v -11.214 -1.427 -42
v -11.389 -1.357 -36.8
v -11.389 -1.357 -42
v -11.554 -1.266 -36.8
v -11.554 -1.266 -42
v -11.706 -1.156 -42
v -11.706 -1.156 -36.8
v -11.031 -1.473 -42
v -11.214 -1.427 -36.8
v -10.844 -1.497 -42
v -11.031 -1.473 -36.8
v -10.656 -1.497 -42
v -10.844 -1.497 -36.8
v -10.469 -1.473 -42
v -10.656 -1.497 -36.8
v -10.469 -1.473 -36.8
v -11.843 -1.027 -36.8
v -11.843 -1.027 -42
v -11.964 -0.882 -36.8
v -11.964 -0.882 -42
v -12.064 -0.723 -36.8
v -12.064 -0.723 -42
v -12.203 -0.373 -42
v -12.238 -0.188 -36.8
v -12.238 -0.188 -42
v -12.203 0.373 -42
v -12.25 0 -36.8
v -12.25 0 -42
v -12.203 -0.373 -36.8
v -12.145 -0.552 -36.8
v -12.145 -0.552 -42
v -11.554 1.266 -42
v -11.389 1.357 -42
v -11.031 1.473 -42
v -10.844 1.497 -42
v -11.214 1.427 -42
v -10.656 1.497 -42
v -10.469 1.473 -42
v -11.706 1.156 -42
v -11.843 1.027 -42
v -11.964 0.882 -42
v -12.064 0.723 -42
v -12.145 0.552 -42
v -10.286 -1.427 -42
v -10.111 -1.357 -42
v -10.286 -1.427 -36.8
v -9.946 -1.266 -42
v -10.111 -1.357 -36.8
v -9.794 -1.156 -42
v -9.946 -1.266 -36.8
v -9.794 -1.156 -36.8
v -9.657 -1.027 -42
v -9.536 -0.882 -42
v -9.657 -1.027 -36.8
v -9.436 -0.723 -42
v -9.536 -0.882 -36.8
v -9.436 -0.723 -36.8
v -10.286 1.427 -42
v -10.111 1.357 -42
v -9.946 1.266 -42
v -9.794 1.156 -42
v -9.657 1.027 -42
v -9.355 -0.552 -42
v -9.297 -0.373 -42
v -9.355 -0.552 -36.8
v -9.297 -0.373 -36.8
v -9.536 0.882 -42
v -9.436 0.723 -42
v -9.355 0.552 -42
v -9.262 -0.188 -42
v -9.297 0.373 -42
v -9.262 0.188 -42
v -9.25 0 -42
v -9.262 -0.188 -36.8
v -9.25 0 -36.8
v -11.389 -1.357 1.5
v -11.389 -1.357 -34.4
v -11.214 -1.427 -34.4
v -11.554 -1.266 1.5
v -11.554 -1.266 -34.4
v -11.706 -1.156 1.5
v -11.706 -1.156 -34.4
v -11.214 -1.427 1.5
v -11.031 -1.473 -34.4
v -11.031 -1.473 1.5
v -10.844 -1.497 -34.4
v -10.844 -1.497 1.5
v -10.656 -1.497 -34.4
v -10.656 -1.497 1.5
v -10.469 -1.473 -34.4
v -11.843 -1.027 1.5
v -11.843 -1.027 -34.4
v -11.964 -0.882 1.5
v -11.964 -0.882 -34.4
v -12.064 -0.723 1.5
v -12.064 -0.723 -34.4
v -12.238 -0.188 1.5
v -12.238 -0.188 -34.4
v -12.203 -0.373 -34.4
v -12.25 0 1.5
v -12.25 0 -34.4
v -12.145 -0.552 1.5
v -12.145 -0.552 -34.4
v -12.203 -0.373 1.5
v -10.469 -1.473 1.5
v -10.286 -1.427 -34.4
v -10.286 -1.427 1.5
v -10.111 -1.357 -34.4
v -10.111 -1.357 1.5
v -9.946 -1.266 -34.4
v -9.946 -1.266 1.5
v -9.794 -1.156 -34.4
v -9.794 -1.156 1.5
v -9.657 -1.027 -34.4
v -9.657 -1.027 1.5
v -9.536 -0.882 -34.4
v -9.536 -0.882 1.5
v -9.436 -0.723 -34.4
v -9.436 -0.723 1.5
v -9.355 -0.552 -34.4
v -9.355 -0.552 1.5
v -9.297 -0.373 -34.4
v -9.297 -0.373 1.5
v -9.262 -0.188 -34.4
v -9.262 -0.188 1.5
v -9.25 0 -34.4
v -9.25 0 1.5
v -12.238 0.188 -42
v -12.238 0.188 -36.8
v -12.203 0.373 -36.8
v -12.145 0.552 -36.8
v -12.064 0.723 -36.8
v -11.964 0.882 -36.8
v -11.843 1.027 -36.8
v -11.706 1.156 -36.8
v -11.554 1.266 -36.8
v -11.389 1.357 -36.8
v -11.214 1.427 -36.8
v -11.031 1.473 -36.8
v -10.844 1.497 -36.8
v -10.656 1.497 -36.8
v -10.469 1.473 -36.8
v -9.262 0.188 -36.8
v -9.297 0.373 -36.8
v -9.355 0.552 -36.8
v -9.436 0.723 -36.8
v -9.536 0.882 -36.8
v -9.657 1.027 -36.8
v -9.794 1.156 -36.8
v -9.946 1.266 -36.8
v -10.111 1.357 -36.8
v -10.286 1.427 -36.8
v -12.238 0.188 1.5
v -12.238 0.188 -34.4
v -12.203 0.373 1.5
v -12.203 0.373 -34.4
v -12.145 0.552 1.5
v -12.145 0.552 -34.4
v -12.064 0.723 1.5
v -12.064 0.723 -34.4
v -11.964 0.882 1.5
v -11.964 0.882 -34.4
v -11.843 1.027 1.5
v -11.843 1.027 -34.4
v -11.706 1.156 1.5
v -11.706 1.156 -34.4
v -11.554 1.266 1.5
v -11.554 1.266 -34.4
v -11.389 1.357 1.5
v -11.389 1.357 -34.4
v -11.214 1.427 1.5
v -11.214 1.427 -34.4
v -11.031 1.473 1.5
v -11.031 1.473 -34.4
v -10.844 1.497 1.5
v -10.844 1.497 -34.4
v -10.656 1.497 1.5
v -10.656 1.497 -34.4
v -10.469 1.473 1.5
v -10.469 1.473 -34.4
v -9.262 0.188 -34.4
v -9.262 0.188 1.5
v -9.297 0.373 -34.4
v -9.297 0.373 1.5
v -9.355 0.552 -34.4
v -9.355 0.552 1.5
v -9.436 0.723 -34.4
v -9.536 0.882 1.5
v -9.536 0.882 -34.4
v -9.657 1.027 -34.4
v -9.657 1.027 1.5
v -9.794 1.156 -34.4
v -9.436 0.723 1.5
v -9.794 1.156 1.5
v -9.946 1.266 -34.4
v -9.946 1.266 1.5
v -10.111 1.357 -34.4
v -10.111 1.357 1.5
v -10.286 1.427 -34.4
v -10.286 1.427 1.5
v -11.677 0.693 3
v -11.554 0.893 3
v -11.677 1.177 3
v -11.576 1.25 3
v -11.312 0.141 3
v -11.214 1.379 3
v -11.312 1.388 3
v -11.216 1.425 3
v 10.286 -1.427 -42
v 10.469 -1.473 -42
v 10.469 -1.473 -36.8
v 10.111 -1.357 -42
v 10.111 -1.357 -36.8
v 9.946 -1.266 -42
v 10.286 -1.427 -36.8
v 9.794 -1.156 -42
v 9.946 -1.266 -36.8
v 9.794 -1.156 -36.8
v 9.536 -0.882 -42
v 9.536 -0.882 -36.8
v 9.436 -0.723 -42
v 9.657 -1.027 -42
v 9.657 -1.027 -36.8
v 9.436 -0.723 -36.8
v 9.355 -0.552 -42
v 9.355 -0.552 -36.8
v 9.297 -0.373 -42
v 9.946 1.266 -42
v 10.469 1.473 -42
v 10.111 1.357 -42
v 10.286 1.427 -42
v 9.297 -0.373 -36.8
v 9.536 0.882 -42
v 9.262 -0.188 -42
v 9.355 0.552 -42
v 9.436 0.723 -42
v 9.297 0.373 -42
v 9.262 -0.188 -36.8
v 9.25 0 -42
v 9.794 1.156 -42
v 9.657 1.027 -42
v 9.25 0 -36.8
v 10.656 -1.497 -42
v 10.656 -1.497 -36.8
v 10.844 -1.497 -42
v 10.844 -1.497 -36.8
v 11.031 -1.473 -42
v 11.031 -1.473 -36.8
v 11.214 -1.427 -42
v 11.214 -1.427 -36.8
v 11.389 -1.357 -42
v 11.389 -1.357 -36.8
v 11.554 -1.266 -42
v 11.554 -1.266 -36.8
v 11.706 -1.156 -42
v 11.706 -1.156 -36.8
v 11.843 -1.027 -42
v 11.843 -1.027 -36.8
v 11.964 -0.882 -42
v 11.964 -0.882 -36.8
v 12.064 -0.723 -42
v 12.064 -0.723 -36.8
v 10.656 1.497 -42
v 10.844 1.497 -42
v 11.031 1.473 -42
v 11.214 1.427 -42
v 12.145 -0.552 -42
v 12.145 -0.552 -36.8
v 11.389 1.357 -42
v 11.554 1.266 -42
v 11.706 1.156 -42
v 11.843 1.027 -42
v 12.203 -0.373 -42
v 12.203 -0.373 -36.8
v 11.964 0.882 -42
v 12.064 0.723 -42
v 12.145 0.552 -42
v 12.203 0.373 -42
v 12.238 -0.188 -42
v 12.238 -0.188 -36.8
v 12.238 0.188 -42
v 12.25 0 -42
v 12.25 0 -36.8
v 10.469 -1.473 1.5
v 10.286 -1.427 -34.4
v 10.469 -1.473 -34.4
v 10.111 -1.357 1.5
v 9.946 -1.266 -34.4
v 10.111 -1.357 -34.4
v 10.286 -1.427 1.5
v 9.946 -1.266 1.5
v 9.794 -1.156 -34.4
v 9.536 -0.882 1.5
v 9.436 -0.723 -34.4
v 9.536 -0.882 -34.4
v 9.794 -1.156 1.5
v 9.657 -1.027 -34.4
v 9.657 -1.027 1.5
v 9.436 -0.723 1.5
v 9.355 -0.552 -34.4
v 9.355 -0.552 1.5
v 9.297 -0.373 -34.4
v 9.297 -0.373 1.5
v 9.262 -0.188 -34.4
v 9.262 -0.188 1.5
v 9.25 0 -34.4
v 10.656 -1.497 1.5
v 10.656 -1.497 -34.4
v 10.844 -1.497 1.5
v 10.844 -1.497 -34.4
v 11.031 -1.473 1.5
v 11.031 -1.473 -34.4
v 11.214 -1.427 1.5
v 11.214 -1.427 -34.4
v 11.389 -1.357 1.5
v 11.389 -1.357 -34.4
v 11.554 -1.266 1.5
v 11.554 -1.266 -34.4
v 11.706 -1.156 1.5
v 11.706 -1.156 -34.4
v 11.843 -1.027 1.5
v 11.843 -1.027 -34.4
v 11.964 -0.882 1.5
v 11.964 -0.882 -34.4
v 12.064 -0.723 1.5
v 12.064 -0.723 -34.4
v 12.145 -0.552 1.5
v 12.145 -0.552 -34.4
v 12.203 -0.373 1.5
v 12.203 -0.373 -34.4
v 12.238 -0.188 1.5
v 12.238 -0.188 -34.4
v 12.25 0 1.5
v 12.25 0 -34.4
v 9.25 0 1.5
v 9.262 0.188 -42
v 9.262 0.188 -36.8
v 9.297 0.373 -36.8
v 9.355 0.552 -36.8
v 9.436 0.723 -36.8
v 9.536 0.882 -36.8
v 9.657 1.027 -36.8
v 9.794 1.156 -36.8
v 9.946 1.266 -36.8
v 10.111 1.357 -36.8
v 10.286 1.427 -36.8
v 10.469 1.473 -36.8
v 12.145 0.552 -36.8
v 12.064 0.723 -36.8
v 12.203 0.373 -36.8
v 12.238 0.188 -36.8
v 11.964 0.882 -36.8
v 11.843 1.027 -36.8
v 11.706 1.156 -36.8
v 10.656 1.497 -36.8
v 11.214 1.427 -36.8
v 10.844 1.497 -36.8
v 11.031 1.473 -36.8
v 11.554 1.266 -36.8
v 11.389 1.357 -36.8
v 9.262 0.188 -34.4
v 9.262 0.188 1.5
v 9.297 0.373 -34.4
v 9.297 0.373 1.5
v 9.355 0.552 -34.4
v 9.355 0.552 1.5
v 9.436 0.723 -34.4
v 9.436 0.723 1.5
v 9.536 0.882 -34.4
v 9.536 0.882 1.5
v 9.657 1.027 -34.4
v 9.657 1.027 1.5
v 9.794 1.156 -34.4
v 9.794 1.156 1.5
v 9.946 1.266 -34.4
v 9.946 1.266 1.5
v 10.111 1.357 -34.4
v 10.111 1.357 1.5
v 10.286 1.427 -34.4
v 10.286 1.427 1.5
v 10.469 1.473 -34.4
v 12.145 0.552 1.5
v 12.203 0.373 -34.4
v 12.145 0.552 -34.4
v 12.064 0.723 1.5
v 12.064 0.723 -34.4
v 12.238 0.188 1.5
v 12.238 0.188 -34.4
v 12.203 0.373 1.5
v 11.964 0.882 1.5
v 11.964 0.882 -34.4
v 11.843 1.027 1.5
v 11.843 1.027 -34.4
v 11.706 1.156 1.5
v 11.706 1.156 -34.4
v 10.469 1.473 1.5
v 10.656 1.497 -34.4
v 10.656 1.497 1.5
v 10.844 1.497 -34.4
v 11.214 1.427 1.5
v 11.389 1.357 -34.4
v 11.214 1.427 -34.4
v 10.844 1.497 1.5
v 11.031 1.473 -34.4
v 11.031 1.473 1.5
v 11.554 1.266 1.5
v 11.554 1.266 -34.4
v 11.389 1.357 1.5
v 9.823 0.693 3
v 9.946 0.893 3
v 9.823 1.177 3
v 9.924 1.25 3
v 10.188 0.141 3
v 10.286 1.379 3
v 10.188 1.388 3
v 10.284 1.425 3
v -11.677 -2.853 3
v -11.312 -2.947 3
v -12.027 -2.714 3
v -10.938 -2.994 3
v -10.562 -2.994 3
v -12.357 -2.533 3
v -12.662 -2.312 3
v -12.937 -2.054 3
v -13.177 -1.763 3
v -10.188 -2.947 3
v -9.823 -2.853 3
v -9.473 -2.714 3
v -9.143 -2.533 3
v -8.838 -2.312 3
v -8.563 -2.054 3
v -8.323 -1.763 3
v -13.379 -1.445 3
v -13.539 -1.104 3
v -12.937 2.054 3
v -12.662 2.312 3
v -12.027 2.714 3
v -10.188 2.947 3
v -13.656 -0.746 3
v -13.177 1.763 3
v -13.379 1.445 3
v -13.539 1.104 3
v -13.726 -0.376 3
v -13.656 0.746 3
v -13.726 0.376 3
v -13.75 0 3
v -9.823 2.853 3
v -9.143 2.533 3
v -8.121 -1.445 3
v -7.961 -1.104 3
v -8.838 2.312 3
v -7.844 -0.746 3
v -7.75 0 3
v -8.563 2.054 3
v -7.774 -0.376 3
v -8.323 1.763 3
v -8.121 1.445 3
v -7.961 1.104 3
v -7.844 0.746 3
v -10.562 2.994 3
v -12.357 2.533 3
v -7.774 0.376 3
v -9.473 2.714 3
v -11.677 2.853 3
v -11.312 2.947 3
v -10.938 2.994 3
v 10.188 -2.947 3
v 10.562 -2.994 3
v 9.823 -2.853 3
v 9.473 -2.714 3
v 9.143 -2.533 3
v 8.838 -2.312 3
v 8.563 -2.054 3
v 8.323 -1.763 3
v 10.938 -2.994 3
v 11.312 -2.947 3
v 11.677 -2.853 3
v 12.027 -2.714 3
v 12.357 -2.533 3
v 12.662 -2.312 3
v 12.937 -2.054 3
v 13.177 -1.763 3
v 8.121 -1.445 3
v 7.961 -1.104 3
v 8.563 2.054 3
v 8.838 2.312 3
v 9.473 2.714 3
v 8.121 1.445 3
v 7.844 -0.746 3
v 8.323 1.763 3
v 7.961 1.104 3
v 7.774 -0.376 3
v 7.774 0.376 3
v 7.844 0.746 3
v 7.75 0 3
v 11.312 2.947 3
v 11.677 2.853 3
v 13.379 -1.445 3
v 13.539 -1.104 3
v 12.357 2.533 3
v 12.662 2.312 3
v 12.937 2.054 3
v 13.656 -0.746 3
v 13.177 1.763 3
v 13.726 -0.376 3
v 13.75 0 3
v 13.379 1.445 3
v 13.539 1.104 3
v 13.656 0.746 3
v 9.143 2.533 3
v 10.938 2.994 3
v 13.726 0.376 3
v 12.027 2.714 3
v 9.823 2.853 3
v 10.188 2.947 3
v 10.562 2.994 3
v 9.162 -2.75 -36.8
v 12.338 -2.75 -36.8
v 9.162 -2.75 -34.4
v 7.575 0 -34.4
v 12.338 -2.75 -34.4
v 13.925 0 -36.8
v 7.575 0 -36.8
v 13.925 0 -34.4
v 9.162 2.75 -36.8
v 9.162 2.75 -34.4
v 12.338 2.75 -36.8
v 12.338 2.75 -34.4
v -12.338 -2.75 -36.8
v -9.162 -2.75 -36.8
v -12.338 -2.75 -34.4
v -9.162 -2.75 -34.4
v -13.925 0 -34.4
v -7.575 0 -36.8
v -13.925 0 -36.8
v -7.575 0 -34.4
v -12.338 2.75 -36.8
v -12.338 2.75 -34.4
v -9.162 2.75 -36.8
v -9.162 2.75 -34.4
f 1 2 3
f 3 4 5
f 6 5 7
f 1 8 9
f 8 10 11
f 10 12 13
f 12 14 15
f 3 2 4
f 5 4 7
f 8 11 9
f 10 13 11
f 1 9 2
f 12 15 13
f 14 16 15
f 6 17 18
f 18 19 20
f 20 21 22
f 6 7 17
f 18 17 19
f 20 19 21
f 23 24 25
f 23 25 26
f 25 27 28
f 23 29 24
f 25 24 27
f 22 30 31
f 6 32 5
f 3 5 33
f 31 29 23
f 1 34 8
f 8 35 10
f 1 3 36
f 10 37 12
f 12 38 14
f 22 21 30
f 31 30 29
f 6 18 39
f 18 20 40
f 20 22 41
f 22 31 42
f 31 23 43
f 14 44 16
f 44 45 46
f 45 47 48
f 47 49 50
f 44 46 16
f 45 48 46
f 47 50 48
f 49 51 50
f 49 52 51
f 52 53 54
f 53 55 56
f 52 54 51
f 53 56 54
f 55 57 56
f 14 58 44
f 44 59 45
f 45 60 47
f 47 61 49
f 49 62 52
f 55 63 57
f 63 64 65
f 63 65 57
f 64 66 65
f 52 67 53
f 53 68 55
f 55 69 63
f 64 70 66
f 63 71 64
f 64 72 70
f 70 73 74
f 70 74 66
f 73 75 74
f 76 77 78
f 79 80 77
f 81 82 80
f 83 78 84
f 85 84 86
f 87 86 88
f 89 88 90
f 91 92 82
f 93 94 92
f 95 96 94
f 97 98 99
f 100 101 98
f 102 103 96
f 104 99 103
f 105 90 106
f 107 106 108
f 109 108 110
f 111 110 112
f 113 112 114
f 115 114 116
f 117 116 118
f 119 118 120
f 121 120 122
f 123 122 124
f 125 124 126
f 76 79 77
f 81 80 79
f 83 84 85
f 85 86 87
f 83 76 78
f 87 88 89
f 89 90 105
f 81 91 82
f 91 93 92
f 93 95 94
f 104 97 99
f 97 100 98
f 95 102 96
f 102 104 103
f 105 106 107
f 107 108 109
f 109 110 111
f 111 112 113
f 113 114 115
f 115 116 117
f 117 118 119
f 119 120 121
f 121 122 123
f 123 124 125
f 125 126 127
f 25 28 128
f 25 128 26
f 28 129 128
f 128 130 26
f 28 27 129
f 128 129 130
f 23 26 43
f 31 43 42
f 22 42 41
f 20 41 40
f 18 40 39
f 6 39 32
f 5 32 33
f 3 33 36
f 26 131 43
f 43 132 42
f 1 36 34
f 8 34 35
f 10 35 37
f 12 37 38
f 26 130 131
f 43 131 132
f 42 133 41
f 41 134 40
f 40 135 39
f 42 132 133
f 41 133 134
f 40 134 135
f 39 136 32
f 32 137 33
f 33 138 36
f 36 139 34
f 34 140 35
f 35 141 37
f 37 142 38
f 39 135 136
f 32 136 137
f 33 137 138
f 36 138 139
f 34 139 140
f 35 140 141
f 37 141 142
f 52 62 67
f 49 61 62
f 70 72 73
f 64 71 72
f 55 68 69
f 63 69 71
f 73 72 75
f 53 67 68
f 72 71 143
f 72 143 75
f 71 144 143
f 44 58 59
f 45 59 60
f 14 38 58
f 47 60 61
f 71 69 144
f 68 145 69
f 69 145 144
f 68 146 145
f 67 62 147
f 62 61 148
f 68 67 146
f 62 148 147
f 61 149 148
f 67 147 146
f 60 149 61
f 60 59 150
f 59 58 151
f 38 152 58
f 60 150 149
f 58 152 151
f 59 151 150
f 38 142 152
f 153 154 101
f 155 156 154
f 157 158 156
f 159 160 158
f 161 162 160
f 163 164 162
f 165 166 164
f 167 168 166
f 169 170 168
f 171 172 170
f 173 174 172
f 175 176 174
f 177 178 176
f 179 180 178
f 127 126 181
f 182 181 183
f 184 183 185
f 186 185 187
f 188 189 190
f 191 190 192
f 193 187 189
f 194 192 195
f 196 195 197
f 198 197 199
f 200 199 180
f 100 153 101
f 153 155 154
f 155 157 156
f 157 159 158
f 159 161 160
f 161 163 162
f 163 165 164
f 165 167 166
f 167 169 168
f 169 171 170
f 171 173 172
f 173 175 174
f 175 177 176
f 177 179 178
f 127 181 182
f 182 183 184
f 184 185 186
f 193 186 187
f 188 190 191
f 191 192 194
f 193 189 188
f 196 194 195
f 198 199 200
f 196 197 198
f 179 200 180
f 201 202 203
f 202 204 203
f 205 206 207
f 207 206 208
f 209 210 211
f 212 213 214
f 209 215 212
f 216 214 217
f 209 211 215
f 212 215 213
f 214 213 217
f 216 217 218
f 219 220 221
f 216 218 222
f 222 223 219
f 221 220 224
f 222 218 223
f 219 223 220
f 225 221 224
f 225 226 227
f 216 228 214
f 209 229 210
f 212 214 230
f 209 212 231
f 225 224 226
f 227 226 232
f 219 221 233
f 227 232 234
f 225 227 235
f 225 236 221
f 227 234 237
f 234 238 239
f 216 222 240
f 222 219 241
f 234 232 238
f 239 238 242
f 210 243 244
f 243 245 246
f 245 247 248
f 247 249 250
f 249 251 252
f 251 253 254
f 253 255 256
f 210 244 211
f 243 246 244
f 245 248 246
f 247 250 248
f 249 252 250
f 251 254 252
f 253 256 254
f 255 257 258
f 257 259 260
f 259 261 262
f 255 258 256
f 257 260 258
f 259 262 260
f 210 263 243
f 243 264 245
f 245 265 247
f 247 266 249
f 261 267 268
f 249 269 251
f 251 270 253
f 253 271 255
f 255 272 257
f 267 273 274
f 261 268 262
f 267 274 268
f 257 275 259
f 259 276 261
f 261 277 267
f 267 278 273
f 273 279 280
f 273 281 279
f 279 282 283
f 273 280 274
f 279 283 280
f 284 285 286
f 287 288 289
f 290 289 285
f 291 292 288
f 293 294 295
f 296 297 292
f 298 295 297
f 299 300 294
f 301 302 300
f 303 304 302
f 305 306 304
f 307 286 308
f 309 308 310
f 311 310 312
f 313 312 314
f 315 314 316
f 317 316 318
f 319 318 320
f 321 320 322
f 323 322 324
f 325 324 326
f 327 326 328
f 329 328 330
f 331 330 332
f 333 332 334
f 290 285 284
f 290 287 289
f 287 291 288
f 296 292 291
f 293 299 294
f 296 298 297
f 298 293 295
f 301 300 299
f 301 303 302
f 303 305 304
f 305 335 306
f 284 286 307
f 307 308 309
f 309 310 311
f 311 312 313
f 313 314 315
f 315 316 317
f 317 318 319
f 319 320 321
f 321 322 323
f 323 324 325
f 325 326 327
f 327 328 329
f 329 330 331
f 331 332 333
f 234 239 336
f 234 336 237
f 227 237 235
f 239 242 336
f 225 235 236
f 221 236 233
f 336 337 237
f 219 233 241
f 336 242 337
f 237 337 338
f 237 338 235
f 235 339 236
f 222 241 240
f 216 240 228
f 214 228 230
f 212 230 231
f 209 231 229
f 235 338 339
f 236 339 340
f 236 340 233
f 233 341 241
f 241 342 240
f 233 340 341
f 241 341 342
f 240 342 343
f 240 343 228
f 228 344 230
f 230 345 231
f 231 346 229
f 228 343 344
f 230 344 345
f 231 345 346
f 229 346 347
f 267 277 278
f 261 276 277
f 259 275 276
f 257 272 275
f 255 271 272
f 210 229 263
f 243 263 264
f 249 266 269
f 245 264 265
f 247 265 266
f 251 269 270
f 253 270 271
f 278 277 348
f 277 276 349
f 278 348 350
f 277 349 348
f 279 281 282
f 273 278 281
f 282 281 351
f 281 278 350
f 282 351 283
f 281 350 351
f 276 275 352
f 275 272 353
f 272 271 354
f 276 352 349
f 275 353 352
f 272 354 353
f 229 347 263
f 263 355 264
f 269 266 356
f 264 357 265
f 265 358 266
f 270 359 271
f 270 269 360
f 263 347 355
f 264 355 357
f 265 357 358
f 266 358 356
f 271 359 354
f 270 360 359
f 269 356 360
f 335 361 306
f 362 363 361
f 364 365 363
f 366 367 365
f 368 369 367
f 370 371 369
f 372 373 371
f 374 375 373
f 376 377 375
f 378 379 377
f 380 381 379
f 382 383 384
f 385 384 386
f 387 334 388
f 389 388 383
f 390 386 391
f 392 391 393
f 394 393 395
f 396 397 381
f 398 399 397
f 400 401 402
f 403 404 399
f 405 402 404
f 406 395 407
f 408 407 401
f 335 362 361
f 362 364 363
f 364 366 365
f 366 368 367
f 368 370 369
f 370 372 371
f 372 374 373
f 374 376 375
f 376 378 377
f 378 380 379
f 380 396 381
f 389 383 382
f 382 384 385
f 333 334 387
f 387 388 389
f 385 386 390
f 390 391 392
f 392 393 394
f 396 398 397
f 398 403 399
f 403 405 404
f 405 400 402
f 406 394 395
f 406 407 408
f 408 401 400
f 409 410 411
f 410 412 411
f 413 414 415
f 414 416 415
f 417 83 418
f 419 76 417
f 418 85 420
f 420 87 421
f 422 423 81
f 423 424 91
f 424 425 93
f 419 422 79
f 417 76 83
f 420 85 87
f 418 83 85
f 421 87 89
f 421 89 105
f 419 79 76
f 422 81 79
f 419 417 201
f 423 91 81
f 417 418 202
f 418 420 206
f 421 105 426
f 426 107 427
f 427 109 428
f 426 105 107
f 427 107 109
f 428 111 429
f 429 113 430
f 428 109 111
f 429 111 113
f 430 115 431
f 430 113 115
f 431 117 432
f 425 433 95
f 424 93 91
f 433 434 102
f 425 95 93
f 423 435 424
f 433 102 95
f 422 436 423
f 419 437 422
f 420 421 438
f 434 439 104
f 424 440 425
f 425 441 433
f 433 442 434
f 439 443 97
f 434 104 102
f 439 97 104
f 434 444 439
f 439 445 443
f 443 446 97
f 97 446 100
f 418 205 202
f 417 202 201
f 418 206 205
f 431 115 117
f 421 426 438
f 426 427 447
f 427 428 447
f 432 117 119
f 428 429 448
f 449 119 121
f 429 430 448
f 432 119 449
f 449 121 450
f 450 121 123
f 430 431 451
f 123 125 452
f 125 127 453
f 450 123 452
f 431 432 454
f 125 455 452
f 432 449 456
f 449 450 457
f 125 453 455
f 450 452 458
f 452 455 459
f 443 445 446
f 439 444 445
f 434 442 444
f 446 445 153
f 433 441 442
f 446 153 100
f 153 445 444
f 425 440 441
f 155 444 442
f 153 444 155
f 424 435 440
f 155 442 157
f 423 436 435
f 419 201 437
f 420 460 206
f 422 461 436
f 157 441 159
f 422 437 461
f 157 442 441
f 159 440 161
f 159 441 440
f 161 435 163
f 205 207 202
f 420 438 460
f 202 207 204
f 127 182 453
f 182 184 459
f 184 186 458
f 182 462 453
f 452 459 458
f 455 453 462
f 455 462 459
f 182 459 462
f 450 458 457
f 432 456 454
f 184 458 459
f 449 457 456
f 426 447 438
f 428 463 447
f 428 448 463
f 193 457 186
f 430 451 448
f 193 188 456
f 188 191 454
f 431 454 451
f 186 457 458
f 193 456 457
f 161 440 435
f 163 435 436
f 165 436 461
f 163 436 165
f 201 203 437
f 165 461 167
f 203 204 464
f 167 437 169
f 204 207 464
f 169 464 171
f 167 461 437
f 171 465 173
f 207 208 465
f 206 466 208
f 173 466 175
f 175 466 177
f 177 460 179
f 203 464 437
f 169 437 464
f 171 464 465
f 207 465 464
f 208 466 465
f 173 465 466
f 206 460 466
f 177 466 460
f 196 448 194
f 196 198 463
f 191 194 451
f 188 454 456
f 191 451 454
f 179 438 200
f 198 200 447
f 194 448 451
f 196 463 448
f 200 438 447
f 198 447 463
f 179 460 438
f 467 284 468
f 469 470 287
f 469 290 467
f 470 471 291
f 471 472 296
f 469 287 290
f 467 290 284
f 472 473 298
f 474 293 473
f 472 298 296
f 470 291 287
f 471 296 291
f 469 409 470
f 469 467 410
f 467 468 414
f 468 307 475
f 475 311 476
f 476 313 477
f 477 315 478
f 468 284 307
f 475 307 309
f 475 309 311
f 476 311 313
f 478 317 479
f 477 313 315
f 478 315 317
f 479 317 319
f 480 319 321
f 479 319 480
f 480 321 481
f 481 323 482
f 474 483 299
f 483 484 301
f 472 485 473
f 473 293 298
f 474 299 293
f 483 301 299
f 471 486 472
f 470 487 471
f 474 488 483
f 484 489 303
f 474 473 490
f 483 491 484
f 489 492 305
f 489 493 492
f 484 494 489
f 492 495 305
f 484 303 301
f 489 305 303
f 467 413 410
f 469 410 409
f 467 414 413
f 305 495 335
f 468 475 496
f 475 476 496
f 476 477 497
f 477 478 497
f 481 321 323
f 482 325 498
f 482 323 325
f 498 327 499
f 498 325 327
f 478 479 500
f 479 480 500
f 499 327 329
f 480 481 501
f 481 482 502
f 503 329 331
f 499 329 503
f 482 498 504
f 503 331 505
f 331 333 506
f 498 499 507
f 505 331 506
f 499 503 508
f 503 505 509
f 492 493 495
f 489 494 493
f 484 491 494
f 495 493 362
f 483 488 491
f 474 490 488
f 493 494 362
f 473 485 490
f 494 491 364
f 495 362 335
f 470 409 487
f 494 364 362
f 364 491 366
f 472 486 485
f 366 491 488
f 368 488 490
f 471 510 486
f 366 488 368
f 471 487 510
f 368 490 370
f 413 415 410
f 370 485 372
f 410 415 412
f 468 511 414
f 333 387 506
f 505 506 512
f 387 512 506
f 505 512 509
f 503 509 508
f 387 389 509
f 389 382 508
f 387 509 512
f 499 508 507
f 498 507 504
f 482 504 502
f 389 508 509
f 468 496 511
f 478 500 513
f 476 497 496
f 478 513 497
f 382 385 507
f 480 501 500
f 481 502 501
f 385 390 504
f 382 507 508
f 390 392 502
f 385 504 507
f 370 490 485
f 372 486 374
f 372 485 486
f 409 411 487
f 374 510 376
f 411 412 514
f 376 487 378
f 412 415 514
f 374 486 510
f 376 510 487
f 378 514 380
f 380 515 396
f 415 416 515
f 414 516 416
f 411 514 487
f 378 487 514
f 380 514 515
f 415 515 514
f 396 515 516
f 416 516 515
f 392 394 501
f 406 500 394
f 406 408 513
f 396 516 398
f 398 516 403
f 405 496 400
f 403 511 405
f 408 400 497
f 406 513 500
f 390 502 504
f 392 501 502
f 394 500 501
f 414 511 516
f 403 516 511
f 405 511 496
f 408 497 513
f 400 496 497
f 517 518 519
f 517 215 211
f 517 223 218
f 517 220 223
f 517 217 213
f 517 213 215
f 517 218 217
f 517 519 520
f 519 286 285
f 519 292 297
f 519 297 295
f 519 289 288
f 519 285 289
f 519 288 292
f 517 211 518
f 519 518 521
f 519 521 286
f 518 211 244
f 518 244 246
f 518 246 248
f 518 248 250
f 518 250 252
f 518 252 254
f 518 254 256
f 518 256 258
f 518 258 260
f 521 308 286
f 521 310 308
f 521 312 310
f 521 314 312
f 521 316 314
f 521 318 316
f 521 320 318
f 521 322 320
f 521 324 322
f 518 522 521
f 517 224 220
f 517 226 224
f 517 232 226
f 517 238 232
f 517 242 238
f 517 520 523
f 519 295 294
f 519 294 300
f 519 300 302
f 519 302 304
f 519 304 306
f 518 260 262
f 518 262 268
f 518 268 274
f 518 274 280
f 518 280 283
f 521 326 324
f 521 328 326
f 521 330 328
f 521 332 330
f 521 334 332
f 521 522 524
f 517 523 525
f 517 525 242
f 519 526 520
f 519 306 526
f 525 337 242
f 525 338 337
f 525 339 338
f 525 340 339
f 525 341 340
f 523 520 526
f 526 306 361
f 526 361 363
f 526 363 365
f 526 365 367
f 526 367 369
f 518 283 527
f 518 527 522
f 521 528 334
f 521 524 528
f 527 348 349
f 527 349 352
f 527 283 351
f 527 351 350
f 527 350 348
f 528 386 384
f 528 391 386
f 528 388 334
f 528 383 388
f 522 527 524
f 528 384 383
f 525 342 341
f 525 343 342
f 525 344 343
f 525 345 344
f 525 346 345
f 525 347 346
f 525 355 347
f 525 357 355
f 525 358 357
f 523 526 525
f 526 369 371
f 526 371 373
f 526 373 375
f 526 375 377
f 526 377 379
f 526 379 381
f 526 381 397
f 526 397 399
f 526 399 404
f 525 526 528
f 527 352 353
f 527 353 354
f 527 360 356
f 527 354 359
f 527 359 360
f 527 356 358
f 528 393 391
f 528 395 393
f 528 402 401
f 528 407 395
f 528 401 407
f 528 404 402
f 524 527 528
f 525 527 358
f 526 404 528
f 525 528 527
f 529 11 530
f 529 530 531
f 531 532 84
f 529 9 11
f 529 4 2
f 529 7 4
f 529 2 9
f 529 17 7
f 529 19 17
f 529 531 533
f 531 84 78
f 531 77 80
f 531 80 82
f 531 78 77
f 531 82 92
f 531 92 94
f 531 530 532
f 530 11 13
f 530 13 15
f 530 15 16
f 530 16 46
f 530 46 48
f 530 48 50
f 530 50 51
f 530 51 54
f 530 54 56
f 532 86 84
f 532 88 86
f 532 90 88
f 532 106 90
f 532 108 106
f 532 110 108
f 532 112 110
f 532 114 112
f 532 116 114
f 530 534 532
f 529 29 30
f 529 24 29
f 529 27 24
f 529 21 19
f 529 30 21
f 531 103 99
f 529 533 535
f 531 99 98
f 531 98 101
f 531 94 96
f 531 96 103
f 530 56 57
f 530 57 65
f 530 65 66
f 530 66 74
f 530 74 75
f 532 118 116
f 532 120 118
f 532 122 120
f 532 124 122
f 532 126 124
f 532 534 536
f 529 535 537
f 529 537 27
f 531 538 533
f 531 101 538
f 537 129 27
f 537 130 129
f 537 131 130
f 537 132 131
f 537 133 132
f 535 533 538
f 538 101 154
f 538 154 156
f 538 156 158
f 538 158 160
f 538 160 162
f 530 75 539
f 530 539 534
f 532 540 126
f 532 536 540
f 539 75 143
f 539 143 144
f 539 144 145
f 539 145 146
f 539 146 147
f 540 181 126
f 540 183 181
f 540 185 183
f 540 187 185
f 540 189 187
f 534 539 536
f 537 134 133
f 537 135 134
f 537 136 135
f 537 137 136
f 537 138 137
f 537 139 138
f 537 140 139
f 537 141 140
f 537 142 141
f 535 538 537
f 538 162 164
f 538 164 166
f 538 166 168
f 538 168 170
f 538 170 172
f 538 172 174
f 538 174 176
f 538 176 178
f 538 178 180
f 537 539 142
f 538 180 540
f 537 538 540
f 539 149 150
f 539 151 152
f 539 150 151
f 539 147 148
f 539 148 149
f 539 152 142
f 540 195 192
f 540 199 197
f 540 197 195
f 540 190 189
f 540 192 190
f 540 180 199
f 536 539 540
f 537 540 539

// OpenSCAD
$fn = 50;

difference() {
	union() {
		translate(v = [-10.75, 0, 3]) {
			rotate(a = [0, 0, 0]) {
				difference() {
					union() {
						translate(v = [0, 0, -45.0]) {
							cylinder(h = 45, r = 1.5);
						}
						translate(v = [0, 0, -1.5]) {
							cylinder(h = 1.5, r1 = 1.5, r2 = 3);
						}
					}
					union();
				}
			}
		}
		translate(v = [-10.75, 0, -36.8]) {
			rotate(a = [0, 0, 0]) {
				difference() {
					union() {
						linear_extrude(height = 2.4) {
							polygon(points = [[3.1754264805429417, 0.0], [1.5877132402714713, 2.75], [-1.5877132402714702, 2.7500000000000004], [-3.1754264805429417, 3.888775875324659e-16], [-1.5877132402714722, -2.7499999999999996], [1.5877132402714687, -2.7500000000000013]]);
						}
					}
					union();
				}
			}
		}
		translate(v = [10.75, 0, 3]) {
			rotate(a = [0, 0, 0]) {
				difference() {
					union() {
						translate(v = [0, 0, -45.0]) {
							cylinder(h = 45, r = 1.5);
						}
						translate(v = [0, 0, -1.5]) {
							cylinder(h = 1.5, r1 = 1.5, r2 = 3);
						}
					}
					union();
				}
			}
		}
		translate(v = [10.75, 0, -36.8]) {
			rotate(a = [0, 0, 0]) {
				difference() {
					union() {
						linear_extrude(height = 2.4) {
							polygon(points = [[3.1754264805429417, 0.0], [1.5877132402714713, 2.75], [-1.5877132402714702, 2.7500000000000004], [-3.1754264805429417, 3.888775875324659e-16], [-1.5877132402714722, -2.7499999999999996], [1.5877132402714687, -2.7500000000000013]]);
						}
					}
					union();
				}
			}
		}
	}
	union();
}
